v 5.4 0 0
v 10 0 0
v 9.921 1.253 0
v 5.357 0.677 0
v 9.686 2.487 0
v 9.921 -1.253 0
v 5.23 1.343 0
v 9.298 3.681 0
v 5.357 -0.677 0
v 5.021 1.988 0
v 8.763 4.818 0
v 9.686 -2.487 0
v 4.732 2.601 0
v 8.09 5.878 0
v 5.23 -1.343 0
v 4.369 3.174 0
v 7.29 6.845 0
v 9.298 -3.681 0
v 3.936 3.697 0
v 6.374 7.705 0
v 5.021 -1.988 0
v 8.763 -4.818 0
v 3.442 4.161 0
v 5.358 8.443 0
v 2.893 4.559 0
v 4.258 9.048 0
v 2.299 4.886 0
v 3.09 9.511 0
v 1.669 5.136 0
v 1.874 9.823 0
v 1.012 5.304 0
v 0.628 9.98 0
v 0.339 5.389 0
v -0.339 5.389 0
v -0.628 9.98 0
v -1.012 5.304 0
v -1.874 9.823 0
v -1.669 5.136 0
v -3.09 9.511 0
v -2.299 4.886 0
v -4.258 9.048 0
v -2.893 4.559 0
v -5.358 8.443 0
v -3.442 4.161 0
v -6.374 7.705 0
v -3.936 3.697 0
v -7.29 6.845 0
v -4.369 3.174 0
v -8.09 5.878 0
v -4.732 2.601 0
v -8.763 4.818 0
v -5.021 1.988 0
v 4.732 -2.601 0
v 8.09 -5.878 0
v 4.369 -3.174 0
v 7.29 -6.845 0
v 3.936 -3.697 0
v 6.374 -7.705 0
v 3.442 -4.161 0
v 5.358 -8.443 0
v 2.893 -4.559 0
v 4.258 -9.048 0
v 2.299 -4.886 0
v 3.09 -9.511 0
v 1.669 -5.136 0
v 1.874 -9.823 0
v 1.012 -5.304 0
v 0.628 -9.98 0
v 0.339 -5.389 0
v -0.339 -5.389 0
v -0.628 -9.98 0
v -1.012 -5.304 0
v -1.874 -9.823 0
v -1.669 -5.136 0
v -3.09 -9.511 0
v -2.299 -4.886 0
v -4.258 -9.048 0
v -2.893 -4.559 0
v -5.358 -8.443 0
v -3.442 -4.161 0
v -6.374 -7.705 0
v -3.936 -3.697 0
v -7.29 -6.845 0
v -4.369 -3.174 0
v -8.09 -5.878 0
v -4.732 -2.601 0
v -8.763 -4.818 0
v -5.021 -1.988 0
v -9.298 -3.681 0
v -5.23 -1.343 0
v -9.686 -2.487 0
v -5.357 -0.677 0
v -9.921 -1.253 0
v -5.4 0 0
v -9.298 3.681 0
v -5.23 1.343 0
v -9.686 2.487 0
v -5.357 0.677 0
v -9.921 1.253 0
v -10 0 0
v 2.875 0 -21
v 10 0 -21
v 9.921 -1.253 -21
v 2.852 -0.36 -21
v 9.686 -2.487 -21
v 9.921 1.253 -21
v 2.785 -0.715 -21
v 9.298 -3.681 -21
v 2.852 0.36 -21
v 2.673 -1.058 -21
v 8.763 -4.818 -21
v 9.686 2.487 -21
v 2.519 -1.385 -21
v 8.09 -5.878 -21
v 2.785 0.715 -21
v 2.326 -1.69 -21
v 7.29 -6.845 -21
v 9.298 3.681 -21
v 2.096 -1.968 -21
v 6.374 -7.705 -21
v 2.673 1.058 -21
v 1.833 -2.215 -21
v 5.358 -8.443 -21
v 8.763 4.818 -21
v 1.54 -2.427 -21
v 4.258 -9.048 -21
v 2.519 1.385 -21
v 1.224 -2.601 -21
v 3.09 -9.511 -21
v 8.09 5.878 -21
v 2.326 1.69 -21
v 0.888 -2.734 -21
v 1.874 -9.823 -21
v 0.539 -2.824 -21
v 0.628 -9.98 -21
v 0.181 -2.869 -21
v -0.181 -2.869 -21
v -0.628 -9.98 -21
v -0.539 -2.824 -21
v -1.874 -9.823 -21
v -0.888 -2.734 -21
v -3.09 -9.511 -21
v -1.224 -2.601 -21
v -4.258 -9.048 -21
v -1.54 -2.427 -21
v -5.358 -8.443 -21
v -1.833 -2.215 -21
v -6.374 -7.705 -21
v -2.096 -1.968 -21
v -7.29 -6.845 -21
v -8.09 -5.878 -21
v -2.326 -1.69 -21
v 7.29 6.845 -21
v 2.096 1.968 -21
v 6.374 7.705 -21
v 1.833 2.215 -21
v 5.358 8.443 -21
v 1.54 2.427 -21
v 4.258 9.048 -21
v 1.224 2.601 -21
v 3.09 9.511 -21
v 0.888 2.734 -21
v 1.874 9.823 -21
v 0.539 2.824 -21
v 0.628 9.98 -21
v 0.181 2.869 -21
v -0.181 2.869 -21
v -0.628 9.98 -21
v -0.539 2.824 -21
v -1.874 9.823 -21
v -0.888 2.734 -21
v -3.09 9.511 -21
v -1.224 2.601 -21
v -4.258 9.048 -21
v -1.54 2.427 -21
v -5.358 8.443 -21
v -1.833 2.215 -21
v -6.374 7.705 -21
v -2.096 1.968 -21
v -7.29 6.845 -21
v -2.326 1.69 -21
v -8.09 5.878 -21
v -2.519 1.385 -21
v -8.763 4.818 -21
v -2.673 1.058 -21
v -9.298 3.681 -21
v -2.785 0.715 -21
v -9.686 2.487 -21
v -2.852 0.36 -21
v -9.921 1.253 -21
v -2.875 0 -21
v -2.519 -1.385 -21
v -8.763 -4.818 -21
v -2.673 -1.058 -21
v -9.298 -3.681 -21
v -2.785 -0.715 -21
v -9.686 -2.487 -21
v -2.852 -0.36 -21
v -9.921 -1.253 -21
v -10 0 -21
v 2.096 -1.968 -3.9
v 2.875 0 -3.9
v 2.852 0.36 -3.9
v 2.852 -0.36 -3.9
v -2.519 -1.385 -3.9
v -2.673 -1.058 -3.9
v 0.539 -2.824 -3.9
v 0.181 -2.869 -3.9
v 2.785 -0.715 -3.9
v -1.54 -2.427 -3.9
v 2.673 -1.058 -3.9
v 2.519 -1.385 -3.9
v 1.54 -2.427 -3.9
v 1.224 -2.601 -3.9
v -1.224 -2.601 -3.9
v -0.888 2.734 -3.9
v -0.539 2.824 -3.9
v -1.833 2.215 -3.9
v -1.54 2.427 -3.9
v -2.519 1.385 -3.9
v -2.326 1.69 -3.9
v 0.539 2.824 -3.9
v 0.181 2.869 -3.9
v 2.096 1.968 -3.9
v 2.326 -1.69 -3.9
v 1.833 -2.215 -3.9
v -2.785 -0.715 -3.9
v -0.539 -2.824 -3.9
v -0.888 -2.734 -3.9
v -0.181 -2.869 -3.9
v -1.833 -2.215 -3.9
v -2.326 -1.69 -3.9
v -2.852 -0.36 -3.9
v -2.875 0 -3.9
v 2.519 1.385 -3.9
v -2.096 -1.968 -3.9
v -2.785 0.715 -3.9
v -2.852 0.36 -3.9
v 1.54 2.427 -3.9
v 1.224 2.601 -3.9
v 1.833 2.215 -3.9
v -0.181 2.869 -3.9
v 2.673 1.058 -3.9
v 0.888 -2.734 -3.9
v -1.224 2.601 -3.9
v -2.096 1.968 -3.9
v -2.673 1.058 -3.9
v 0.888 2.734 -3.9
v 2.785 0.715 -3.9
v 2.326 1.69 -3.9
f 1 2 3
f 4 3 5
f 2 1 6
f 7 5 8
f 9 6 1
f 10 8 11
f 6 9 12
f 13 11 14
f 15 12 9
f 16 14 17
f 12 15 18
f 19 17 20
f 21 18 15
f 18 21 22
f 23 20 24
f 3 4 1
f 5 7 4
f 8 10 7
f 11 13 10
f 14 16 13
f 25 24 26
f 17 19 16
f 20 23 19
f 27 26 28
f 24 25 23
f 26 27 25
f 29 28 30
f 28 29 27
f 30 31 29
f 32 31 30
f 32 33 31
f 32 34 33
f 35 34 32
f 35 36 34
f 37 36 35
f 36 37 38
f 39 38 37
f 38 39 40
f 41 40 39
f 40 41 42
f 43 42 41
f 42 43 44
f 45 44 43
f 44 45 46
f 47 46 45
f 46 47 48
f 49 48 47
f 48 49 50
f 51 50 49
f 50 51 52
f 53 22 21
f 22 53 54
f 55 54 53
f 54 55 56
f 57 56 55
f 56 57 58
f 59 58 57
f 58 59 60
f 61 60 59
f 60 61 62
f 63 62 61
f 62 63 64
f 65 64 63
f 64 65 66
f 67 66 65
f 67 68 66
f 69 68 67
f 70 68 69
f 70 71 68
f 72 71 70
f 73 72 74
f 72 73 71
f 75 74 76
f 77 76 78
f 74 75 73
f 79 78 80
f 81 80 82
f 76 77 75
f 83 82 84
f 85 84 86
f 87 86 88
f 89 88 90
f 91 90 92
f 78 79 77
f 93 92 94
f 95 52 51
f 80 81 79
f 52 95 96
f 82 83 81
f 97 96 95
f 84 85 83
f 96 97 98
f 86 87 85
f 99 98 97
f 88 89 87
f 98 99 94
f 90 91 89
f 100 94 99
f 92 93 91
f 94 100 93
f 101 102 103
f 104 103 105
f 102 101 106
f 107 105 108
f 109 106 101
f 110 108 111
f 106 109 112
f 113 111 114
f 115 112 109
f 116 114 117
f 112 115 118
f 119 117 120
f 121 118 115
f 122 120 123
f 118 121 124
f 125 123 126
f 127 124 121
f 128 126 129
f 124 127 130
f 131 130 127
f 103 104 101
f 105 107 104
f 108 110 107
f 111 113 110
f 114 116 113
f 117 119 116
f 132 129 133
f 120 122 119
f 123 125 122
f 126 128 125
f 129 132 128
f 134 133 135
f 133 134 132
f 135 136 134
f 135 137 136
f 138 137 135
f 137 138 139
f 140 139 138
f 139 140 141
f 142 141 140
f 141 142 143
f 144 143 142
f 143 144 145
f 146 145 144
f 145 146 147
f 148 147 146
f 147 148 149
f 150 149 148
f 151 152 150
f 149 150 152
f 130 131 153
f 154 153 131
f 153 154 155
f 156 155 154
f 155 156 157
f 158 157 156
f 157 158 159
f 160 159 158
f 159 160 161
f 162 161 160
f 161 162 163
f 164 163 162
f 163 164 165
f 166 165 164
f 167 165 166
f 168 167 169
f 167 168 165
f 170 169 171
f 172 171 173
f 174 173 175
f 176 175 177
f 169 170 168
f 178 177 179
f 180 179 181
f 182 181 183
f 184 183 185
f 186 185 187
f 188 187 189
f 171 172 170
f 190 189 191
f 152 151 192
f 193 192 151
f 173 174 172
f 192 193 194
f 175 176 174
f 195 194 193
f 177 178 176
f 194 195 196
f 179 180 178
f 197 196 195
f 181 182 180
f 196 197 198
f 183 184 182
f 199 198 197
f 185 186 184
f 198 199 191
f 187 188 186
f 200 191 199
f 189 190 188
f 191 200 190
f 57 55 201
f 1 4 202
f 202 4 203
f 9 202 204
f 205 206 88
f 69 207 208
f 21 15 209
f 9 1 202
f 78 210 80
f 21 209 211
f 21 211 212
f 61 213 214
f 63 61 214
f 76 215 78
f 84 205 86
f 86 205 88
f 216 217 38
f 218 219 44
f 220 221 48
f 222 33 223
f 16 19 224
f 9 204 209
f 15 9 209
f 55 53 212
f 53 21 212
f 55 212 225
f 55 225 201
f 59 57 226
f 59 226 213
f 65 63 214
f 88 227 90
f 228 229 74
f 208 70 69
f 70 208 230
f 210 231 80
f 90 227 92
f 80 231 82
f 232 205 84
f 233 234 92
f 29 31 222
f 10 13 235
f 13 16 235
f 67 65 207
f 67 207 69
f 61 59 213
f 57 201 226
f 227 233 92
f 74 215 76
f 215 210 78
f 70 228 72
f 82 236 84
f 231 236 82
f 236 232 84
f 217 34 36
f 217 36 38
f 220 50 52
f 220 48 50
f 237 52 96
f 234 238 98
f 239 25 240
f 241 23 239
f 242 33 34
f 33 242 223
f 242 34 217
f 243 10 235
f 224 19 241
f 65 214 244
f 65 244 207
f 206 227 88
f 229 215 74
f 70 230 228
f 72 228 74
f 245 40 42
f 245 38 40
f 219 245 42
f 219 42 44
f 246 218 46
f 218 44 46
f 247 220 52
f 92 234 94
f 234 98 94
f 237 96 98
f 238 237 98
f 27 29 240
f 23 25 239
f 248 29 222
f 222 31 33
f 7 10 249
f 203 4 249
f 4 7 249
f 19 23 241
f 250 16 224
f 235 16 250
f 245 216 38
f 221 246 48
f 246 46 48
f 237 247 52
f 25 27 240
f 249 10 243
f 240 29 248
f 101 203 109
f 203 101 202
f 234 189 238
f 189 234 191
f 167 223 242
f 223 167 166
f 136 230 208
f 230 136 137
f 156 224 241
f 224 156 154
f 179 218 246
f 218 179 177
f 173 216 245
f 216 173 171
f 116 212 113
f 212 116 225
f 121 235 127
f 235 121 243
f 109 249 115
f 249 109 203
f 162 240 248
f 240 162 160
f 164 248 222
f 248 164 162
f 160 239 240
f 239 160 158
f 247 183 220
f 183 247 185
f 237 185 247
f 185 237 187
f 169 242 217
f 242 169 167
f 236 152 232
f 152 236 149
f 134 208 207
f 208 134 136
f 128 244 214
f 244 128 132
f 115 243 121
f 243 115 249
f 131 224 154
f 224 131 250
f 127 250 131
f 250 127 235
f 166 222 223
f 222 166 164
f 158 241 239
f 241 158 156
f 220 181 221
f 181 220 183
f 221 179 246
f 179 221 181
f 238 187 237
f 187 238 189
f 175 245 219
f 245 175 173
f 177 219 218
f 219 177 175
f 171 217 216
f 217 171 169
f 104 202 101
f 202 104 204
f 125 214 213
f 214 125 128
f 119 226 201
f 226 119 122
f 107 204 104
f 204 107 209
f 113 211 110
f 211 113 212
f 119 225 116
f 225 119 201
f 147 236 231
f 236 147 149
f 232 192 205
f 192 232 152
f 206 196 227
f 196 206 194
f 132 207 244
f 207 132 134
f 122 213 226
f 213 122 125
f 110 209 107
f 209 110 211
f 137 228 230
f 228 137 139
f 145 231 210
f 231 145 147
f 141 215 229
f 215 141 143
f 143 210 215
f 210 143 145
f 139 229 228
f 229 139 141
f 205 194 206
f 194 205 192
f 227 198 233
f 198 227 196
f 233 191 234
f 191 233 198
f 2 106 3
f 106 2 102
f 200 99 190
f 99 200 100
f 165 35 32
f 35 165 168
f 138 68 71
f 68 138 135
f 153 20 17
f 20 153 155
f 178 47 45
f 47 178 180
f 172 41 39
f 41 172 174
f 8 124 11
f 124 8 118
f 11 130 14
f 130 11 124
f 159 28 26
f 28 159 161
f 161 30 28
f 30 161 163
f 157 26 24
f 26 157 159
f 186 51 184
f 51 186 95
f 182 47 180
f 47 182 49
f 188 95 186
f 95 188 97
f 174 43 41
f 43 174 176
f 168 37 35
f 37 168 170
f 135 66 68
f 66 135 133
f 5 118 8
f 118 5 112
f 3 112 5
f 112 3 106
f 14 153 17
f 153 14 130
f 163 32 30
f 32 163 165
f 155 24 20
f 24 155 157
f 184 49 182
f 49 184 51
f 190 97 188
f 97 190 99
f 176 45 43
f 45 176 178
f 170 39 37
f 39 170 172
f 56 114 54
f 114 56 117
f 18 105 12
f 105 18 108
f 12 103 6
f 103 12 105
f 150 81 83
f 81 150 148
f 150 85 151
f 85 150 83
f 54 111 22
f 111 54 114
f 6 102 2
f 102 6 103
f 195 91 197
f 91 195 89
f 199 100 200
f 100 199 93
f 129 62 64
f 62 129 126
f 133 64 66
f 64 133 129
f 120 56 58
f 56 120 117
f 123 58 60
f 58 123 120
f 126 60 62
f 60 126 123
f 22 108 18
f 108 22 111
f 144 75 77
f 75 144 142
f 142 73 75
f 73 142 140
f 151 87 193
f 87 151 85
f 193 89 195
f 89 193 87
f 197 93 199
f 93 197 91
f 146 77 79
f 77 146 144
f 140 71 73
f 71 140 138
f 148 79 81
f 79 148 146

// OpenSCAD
$fn = 50;


difference() {
	union() {
		translate(v = [0, 0, -21.0000000000]) {
			cylinder(h = 21, r = 10.0000000000);
		}
		cylinder(h = 0, r = 20.0000000000);
	}
	union() {
		translate(v = [0, 0, 0]) {
			rotate(a = [0, 0, 0]) {
				difference() {
					union() {
						#translate(v = [0, 0, -21.0000000000]) {
							cylinder(h = 21, r = 2.6000000000);
						}
						#translate(v = [0, 0, -3.9000000000]) {
							cylinder(h = 3.9000000000, r = 10.0000000000, r1 = 2.8750000000, r2 = 5.4000000000);
						}
						#translate(v = [0, 0, -21.0000000000]) {
							cylinder(h = 21, r = 2.8750000000);
						}
						#translate(v = [0, 0, -21.0000000000]) {
							cylinder(h = 21, r = 2.6000000000);
						}
					}
					union();
				}
			}
		}
	}
}
